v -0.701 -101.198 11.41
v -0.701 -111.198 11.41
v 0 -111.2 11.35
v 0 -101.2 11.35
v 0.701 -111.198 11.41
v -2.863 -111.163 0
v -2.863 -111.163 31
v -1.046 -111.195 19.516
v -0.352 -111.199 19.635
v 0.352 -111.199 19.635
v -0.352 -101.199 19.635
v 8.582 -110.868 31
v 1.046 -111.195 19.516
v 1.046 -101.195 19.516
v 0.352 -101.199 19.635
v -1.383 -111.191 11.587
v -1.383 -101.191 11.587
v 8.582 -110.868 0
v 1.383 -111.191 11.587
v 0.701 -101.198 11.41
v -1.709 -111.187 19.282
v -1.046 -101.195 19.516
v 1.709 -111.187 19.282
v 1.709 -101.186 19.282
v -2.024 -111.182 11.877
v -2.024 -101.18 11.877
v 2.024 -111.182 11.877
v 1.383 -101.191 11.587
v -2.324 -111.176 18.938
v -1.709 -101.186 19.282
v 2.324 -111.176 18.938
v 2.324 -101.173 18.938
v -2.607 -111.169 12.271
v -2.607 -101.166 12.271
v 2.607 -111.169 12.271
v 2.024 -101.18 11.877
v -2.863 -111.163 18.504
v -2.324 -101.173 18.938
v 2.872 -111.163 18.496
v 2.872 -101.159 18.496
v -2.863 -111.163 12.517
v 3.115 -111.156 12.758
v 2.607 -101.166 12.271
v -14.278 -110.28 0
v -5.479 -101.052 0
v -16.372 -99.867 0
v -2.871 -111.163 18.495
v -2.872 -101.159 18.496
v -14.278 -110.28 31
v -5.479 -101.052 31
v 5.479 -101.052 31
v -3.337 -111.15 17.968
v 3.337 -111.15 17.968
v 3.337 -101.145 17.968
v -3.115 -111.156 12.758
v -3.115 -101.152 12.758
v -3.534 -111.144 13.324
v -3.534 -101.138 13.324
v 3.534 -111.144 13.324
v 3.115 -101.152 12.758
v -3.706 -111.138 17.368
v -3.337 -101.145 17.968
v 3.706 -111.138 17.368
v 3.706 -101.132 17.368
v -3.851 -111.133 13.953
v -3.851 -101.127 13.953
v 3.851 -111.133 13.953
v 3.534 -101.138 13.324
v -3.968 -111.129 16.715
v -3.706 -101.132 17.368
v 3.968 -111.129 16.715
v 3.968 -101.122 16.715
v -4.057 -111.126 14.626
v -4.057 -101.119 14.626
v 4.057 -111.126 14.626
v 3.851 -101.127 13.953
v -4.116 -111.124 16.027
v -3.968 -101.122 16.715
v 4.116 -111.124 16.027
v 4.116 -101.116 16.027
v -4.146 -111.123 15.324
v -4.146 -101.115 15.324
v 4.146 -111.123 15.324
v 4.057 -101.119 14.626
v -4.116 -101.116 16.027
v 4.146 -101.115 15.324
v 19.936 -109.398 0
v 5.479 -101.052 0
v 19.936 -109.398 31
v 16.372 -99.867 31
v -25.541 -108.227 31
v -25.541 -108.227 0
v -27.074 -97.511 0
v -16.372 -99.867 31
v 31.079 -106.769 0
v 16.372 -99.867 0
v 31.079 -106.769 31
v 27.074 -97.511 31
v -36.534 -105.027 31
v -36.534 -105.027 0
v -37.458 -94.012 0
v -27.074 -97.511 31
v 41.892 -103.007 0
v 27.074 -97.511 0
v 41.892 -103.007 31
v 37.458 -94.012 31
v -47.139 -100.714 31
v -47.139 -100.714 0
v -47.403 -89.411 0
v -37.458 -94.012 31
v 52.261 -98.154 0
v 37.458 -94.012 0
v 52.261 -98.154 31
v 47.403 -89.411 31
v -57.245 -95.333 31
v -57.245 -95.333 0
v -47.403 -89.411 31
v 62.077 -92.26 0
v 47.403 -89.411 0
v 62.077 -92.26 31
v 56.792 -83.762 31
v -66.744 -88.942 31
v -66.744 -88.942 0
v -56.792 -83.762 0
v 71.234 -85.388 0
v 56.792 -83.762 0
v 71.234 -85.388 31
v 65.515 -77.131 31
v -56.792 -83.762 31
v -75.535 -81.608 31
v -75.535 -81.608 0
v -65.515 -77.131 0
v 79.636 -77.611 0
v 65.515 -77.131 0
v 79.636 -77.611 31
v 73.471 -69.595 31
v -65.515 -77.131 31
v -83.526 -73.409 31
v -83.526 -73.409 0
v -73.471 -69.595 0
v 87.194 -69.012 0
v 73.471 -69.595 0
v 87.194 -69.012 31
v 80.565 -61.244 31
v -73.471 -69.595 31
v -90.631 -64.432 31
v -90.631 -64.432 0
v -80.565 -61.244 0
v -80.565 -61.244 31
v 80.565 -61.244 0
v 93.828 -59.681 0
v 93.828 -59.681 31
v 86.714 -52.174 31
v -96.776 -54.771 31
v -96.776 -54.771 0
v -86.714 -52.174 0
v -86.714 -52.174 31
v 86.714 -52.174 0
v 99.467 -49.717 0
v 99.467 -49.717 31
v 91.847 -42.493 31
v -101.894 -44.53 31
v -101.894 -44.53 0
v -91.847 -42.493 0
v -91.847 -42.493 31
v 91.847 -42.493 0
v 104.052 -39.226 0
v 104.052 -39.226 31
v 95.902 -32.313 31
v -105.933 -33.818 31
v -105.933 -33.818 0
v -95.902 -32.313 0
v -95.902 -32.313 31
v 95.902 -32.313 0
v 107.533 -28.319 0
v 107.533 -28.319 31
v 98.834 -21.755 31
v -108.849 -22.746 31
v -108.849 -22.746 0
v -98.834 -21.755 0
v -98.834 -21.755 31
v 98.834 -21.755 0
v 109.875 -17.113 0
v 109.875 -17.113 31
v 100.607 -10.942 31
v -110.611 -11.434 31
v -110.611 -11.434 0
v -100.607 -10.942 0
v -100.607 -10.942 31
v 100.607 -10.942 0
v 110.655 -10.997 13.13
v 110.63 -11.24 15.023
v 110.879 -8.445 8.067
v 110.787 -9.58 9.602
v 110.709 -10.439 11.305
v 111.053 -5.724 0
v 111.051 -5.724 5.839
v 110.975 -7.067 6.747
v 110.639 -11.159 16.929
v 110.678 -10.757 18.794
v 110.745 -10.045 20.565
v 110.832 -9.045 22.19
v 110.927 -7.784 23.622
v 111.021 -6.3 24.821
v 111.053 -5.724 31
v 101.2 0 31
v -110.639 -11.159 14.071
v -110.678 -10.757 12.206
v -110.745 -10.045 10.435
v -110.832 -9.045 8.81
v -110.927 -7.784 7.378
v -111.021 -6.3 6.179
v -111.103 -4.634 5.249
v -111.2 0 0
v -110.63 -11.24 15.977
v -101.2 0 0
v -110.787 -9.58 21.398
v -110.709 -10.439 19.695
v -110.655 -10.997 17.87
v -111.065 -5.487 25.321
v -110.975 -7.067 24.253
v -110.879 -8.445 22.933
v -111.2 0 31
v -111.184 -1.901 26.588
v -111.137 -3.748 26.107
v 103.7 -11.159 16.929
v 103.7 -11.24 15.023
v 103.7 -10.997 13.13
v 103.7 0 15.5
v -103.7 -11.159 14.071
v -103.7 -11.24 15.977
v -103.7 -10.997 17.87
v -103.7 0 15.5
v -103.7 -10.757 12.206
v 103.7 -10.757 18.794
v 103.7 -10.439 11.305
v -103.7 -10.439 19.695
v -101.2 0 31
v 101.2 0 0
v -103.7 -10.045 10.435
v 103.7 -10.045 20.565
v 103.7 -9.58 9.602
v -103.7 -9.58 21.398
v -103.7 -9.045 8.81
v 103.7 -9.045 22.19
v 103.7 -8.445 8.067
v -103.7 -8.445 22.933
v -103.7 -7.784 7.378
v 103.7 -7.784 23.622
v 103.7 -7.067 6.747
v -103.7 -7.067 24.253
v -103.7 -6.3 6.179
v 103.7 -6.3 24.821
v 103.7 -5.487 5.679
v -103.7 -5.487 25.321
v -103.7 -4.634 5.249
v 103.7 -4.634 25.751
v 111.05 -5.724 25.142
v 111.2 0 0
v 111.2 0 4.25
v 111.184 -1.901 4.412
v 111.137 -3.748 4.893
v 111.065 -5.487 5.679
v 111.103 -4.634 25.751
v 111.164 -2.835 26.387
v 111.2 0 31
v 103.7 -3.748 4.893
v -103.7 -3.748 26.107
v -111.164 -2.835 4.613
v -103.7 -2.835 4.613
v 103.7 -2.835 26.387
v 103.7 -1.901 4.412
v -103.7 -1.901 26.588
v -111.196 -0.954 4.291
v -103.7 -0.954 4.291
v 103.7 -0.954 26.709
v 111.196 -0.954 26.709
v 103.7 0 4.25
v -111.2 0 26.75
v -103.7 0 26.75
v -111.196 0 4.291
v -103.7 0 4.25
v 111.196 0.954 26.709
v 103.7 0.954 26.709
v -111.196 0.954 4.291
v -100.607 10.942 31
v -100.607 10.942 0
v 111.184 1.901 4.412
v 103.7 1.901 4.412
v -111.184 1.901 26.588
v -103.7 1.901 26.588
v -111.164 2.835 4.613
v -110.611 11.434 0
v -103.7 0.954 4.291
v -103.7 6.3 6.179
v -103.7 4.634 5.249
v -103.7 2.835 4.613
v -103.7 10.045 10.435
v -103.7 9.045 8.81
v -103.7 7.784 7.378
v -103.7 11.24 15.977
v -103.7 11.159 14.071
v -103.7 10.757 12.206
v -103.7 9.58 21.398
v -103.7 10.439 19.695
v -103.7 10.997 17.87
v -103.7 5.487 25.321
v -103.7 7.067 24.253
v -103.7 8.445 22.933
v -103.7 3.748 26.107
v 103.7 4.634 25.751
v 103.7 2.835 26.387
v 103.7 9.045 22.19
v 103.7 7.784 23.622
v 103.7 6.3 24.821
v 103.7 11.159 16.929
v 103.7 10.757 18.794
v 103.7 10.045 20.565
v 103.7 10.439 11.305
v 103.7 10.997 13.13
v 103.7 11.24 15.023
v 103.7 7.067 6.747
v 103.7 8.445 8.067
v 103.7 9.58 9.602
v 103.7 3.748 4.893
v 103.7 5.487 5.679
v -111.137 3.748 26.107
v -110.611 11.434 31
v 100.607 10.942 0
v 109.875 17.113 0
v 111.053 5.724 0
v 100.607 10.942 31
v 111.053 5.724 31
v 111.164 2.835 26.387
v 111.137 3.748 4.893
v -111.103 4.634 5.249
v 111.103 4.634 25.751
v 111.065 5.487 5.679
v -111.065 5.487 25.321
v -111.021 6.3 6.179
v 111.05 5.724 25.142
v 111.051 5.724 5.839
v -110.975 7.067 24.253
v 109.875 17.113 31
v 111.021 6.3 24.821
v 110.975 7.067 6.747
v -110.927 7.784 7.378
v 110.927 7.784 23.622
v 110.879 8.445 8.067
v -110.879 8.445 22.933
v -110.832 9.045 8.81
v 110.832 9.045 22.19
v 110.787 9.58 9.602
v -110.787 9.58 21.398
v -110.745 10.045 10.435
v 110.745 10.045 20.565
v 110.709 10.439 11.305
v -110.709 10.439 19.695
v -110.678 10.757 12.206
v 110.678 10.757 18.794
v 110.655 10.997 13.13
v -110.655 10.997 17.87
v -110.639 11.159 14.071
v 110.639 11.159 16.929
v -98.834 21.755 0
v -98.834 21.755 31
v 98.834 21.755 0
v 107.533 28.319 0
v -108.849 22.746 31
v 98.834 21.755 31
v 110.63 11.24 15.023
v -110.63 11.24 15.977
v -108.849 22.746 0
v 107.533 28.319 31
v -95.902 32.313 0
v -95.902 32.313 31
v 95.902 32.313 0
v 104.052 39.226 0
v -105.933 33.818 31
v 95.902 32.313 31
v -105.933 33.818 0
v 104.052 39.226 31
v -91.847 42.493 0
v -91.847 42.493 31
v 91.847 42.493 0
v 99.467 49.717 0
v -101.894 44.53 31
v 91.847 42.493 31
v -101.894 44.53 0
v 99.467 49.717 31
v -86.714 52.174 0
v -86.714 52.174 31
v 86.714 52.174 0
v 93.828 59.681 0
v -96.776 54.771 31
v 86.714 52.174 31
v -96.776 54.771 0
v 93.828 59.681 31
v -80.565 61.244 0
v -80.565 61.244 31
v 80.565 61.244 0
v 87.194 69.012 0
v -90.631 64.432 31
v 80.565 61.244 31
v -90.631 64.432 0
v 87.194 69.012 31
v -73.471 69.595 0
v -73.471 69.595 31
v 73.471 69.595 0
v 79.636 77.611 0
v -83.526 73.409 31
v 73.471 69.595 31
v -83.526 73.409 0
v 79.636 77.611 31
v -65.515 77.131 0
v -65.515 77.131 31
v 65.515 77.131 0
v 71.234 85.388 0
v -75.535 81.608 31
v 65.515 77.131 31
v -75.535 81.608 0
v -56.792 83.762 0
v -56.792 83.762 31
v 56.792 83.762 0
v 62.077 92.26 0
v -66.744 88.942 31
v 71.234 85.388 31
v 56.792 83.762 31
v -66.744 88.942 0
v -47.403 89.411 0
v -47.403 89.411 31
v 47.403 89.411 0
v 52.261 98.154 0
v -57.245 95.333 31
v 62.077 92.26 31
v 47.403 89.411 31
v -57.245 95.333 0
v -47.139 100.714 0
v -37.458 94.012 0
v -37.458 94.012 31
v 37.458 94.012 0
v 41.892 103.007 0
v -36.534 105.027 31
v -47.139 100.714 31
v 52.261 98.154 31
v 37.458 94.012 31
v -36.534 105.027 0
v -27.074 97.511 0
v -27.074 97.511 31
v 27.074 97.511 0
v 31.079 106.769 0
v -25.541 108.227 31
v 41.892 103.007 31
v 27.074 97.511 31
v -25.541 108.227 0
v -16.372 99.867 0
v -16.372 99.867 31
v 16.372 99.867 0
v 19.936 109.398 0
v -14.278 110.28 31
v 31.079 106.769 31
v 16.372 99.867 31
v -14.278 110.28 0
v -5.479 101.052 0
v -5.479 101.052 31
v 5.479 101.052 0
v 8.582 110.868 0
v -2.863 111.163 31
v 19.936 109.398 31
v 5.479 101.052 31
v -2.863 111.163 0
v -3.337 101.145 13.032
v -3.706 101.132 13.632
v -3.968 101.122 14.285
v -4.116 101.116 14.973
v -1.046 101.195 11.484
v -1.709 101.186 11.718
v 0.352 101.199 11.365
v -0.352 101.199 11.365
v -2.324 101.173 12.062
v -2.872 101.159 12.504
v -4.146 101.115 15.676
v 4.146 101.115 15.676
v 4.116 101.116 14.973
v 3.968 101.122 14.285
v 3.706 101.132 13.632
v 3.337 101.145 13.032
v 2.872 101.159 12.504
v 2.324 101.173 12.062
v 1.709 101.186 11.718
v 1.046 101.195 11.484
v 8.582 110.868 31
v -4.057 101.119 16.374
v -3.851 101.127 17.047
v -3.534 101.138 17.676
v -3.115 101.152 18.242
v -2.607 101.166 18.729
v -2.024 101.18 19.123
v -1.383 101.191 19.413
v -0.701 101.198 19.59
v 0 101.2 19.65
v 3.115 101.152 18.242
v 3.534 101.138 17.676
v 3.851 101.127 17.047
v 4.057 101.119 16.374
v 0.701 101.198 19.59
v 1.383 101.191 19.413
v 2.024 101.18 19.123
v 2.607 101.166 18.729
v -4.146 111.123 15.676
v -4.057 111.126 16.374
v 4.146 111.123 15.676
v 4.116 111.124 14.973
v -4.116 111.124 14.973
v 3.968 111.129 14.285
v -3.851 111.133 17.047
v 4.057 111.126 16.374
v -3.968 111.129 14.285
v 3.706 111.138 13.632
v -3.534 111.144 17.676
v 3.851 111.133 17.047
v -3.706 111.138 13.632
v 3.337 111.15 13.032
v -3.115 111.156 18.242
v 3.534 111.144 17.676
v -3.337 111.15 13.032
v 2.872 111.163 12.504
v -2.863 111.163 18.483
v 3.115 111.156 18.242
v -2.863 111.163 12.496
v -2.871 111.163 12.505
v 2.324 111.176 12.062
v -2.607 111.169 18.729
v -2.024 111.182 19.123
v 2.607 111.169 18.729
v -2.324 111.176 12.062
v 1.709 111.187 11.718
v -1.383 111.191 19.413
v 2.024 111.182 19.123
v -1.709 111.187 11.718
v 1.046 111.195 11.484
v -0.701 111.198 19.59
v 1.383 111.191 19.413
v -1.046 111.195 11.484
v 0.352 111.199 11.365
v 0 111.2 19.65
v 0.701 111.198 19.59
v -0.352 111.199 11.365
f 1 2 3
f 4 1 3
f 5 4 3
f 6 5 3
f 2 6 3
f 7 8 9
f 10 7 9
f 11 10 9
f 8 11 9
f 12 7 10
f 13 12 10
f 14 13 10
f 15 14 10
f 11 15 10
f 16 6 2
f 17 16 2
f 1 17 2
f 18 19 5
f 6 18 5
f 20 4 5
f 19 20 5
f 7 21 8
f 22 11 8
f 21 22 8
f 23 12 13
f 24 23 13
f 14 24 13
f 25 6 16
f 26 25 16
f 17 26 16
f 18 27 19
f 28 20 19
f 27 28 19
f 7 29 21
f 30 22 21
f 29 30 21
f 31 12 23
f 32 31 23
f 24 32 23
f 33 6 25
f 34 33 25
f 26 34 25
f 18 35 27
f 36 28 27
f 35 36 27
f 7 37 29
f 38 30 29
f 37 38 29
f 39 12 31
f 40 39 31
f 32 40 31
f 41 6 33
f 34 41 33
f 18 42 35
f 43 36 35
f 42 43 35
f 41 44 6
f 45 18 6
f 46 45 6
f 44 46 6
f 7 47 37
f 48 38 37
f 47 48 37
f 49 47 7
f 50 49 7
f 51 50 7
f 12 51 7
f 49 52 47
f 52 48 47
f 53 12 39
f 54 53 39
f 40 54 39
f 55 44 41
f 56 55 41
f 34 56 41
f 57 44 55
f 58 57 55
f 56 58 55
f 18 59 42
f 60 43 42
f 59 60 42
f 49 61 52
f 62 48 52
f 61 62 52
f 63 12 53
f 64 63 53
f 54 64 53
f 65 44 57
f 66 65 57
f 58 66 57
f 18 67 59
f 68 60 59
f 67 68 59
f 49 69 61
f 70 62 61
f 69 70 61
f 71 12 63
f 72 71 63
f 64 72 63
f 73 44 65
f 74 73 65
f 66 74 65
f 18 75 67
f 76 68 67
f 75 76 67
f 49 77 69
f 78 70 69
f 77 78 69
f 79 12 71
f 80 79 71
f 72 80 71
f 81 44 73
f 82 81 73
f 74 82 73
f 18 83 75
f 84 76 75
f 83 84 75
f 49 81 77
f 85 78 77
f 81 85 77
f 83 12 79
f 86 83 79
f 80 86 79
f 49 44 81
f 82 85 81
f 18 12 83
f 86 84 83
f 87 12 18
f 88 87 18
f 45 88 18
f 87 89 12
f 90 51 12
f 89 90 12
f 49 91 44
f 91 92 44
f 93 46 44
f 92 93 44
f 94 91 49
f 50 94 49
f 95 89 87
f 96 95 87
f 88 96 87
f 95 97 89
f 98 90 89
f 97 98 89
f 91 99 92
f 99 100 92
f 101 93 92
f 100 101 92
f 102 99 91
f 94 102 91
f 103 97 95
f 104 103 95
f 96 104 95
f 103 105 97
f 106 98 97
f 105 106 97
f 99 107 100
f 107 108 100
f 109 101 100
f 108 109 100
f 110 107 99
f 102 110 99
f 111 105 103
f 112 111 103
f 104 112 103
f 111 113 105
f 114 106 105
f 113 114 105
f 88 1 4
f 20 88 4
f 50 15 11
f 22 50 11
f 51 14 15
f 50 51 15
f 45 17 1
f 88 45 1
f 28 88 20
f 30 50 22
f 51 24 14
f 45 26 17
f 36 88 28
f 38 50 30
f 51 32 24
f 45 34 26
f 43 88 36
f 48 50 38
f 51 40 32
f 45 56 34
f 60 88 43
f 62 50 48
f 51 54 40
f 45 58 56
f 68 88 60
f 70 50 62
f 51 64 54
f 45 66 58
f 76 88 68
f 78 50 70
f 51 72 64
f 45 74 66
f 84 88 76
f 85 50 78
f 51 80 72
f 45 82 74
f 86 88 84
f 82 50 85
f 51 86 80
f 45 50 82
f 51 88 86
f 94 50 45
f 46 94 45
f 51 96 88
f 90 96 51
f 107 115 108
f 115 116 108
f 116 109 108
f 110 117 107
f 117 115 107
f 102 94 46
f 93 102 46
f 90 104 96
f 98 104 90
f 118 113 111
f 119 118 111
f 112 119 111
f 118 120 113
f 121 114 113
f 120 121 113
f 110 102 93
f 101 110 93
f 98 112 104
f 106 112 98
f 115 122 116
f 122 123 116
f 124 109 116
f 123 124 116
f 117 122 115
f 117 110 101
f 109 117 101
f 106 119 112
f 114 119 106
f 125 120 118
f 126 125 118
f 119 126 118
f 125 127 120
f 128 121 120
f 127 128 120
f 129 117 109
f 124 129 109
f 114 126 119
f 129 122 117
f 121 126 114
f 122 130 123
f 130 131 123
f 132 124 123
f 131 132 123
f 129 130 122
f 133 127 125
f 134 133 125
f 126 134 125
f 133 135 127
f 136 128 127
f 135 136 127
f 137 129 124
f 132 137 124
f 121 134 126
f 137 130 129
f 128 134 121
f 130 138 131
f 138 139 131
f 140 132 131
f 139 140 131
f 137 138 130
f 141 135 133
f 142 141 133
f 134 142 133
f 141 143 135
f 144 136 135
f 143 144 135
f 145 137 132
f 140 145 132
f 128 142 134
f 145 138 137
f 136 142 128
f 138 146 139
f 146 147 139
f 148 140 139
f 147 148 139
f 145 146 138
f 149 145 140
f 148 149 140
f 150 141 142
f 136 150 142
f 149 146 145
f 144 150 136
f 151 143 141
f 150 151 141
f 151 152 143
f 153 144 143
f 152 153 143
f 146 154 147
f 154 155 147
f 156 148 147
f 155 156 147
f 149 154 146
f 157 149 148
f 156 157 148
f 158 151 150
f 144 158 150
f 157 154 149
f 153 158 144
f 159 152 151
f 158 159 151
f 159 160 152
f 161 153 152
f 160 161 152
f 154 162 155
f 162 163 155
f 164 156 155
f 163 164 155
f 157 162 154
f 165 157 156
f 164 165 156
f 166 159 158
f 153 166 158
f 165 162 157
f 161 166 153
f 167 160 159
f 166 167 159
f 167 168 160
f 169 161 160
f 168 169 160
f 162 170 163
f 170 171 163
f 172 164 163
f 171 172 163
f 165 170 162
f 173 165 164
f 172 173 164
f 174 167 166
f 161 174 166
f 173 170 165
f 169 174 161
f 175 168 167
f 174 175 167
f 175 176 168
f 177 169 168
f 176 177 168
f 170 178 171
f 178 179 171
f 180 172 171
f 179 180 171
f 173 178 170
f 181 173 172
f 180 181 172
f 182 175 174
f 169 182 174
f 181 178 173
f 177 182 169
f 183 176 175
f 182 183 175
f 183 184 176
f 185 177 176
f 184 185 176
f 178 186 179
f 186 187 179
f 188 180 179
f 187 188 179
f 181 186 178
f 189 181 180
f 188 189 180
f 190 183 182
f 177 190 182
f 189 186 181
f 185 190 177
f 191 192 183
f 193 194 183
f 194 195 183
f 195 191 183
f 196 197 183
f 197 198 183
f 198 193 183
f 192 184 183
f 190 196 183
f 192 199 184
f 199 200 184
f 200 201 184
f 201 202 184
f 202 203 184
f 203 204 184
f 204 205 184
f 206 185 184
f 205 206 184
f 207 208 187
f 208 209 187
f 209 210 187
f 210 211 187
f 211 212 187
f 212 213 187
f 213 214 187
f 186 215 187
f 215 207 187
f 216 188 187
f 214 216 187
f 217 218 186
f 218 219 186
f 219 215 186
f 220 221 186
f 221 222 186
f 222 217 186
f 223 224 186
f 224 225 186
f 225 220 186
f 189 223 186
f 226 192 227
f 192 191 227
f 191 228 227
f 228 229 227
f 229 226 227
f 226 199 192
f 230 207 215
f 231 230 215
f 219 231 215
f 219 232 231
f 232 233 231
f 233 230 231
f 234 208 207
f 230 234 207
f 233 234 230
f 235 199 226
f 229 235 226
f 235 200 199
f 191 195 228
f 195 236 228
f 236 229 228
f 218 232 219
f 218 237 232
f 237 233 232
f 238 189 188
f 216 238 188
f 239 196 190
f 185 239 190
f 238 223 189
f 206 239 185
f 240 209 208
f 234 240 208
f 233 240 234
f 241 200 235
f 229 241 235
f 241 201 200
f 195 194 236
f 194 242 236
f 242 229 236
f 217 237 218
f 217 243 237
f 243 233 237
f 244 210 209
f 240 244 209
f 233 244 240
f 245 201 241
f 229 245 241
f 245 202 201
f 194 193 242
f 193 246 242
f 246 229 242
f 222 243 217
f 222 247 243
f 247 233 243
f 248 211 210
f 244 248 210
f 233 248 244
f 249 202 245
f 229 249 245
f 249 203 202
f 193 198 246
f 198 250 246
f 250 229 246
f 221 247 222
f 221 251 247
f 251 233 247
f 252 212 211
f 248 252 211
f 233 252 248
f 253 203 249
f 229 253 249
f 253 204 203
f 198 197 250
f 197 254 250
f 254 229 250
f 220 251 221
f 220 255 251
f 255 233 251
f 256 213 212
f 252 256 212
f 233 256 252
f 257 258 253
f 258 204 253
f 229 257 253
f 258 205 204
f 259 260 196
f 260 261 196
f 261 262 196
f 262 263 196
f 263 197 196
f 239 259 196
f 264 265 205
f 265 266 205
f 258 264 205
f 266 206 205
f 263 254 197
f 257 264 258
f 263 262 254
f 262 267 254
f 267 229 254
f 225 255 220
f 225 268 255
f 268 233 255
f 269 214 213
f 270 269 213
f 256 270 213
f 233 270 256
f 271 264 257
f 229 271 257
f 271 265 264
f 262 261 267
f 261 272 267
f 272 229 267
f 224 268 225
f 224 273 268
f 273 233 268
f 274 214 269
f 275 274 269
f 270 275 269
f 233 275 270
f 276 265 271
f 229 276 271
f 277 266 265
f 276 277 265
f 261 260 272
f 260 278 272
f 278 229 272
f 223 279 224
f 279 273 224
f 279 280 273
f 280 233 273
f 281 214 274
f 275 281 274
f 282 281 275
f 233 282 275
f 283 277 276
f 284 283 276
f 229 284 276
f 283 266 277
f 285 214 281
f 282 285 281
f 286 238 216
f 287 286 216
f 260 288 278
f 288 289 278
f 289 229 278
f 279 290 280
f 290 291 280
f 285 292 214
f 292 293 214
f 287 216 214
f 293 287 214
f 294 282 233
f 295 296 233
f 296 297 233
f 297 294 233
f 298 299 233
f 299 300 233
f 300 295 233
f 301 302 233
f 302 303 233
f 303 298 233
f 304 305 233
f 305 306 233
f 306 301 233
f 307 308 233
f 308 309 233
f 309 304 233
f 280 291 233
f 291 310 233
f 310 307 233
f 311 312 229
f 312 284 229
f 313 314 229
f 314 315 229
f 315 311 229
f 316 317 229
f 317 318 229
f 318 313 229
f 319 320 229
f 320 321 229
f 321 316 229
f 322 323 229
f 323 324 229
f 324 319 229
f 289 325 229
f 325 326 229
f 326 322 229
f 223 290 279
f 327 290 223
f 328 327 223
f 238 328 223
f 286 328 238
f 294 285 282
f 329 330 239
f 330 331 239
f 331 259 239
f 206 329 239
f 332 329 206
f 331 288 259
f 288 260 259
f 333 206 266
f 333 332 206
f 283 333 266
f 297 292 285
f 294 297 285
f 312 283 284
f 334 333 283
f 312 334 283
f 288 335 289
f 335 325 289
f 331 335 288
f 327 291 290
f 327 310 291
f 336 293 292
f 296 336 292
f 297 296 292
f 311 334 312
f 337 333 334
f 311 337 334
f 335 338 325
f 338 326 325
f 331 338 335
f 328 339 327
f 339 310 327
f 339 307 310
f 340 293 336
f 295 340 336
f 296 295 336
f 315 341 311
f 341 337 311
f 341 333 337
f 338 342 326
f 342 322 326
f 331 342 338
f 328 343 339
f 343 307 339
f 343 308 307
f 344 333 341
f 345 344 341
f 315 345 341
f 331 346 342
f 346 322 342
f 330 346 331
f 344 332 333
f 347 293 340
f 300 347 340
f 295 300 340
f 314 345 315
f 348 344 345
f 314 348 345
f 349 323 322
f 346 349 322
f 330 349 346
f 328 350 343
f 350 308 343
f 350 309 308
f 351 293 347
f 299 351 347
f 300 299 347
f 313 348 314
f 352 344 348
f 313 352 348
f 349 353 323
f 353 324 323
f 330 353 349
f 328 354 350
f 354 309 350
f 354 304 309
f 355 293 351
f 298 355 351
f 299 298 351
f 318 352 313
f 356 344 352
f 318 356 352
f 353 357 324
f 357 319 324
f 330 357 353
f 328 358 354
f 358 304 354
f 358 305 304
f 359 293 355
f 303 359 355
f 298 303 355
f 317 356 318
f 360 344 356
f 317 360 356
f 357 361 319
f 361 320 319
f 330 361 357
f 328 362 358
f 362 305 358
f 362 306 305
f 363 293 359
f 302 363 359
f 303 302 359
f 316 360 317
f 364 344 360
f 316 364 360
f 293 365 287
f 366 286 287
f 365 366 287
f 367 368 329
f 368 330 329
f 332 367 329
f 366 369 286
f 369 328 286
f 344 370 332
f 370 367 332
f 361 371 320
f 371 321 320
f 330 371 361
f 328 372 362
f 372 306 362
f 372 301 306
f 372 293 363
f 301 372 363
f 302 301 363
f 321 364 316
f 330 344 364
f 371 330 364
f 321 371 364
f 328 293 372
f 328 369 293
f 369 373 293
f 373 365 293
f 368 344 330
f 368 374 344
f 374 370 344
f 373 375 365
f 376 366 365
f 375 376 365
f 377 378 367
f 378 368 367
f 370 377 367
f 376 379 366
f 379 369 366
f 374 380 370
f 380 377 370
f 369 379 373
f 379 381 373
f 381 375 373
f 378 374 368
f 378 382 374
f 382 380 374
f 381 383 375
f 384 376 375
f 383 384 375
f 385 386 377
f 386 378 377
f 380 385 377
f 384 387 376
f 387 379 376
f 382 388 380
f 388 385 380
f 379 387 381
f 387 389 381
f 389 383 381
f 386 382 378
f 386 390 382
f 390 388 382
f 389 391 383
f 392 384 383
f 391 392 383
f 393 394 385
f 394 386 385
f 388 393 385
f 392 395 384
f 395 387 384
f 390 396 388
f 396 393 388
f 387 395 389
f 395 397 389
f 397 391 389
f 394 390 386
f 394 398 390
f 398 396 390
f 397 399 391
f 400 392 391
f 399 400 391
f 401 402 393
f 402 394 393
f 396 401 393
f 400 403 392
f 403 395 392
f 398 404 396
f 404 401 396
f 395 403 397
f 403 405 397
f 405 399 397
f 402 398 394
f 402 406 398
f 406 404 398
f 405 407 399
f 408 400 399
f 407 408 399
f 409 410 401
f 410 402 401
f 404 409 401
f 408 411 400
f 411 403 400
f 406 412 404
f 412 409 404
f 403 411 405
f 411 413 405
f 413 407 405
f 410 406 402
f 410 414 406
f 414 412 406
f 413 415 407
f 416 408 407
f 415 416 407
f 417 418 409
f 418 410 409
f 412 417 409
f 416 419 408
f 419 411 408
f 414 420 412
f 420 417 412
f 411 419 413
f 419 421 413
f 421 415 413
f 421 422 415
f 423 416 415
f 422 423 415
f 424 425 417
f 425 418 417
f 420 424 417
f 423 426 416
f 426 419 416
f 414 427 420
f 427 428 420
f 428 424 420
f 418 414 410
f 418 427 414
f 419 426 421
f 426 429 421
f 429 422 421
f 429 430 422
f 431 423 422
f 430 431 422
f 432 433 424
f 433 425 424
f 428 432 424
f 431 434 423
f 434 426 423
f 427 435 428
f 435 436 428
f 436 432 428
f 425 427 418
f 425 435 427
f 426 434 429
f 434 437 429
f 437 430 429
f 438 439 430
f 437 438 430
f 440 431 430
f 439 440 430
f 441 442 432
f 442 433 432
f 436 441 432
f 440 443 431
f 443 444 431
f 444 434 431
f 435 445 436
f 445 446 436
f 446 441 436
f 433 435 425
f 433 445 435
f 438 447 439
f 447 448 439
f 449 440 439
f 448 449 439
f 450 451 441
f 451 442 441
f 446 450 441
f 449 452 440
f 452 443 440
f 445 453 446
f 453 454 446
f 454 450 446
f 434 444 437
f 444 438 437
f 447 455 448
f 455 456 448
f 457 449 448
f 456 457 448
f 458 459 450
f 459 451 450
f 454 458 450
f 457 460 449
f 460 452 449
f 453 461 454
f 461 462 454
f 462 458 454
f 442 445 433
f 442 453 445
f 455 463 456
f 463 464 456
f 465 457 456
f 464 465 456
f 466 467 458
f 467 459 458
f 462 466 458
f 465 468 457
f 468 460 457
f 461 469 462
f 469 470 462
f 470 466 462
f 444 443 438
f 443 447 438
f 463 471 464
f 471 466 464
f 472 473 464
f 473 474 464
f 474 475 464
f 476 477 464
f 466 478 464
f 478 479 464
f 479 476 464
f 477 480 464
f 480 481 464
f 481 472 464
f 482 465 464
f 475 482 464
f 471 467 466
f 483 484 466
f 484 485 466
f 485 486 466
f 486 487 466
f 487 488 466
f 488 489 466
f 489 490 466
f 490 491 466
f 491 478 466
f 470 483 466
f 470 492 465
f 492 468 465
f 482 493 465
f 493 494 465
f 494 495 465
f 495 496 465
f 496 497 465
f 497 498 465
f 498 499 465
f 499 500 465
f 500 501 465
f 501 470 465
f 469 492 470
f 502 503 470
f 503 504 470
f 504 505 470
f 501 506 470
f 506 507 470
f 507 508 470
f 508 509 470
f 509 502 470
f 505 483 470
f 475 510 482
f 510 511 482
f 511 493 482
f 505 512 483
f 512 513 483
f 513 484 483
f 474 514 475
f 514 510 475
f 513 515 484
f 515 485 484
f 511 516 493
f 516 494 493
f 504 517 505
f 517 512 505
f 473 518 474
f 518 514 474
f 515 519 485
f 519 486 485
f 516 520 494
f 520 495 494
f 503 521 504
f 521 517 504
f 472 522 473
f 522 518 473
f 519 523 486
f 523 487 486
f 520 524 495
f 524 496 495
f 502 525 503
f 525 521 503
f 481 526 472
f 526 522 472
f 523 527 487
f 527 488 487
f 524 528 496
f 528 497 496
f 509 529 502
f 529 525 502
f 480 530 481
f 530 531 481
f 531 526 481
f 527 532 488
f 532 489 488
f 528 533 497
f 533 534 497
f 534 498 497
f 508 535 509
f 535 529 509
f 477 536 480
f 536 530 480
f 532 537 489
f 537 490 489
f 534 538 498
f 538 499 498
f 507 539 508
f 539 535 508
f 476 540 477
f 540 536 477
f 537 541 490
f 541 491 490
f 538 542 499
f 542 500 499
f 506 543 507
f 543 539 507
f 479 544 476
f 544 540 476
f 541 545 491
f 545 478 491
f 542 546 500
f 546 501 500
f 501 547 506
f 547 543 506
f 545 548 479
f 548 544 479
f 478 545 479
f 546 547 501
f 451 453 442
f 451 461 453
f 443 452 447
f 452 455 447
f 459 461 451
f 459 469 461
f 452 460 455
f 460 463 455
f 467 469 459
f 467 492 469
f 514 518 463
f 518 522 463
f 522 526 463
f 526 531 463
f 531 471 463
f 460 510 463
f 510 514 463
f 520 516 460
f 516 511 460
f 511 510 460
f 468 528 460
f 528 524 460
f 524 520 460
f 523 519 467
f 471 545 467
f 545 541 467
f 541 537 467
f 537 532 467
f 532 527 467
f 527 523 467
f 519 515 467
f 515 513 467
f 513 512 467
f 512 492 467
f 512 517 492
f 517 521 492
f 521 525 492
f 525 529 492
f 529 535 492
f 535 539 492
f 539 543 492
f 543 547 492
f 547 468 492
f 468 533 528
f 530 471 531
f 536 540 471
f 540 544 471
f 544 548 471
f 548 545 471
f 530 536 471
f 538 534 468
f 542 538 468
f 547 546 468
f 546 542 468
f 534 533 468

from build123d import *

# Parameters (mm, degrees)
ESBO_O2_R                                    = 111.2
ESBO_O2_R_2                                  = 101.2
RESSALTO_EXTRUS_O1_DEPTH                     = 31
FURO_ROSCADO_PARA_CONDU_TE_DE_M8X1_251_REACH = 251.133
FURO_ROSCADO_PARA_CONDU_TE_DE_M8X1_251_B_R   = 4.15
FURO_ROSCADO_PARA_CONDU_TE_DE_M8X1_252_D     = 8.3
FURO_ROSCADO_PARA_CONDU_TE_DE_M8X1_252_DEPTH = 212.401
ESBO_O12_R                                   = 11.25
CORTE_EXTRUS_O1_DEPTH                        = 7.5


with BuildPart() as part:
    # Esboço2 → Ressalto-extrusão1 (new body)
    with BuildSketch(Plane.XY):
        Circle(ESBO_O2_R)
        Circle(ESBO_O2_R_2, mode=Mode.SUBTRACT)
    extrude(amount=RESSALTO_EXTRUS_O1_DEPTH)

    # Furo roscado para conduíte de M8x1.251 b (on position points) → Furo roscado para conduíte de M8x1.251 (cut, up to next)
    with BuildSketch(Plane(origin=(0, 111.2, 15.5), x_dir=(1, 0, 0), z_dir=(0, 1, 0)), mode=Mode.PRIVATE) as furo_roscado_para_condu_te_de_m8x1_251_sk1:
        Circle(FURO_ROSCADO_PARA_CONDU_TE_DE_M8X1_251_B_R)
    furo_roscado_para_condu_te_de_m8x1_251_tool1 = extrude(furo_roscado_para_condu_te_de_m8x1_251_sk1.sketch, amount=-FURO_ROSCADO_PARA_CONDU_TE_DE_M8X1_251_REACH, mode=Mode.PRIVATE) & part.part
    add(furo_roscado_para_condu_te_de_m8x1_251_tool1.solids().sort_by_distance((0, 111.2, 15.5))[0], mode=Mode.SUBTRACT)

    # Furo roscado para conduíte de M8x1.252
    with Locations(Plane(origin=(0, -111.2, 15.5), x_dir=(-1, 0, 0), z_dir=(0, -1, 0))):
        with Locations((0, 0)):
            Hole(FURO_ROSCADO_PARA_CONDU_TE_DE_M8X1_252_D / 2, depth=FURO_ROSCADO_PARA_CONDU_TE_DE_M8X1_252_DEPTH)

    # Esboço12 → Corte-extrusão1 (cut)
    with BuildSketch(Plane(origin=(111.2, 0, 0), x_dir=(0, 0, -1), z_dir=(1, 0, 0))):
        with Locations((-15.5, 0)):
            Circle(ESBO_O12_R)
    corte_extrus_o1 = extrude(amount=-CORTE_EXTRUS_O1_DEPTH, mode=Mode.SUBTRACT)

    # Espelhar1: Corte-extrusão1 across plane
    add(corte_extrus_o1.mirror(Plane(origin=(0, 0, 0), x_dir=(0, 0, 1), z_dir=(1, 0, 0))), mode=Mode.SUBTRACT)


solid = part.part
